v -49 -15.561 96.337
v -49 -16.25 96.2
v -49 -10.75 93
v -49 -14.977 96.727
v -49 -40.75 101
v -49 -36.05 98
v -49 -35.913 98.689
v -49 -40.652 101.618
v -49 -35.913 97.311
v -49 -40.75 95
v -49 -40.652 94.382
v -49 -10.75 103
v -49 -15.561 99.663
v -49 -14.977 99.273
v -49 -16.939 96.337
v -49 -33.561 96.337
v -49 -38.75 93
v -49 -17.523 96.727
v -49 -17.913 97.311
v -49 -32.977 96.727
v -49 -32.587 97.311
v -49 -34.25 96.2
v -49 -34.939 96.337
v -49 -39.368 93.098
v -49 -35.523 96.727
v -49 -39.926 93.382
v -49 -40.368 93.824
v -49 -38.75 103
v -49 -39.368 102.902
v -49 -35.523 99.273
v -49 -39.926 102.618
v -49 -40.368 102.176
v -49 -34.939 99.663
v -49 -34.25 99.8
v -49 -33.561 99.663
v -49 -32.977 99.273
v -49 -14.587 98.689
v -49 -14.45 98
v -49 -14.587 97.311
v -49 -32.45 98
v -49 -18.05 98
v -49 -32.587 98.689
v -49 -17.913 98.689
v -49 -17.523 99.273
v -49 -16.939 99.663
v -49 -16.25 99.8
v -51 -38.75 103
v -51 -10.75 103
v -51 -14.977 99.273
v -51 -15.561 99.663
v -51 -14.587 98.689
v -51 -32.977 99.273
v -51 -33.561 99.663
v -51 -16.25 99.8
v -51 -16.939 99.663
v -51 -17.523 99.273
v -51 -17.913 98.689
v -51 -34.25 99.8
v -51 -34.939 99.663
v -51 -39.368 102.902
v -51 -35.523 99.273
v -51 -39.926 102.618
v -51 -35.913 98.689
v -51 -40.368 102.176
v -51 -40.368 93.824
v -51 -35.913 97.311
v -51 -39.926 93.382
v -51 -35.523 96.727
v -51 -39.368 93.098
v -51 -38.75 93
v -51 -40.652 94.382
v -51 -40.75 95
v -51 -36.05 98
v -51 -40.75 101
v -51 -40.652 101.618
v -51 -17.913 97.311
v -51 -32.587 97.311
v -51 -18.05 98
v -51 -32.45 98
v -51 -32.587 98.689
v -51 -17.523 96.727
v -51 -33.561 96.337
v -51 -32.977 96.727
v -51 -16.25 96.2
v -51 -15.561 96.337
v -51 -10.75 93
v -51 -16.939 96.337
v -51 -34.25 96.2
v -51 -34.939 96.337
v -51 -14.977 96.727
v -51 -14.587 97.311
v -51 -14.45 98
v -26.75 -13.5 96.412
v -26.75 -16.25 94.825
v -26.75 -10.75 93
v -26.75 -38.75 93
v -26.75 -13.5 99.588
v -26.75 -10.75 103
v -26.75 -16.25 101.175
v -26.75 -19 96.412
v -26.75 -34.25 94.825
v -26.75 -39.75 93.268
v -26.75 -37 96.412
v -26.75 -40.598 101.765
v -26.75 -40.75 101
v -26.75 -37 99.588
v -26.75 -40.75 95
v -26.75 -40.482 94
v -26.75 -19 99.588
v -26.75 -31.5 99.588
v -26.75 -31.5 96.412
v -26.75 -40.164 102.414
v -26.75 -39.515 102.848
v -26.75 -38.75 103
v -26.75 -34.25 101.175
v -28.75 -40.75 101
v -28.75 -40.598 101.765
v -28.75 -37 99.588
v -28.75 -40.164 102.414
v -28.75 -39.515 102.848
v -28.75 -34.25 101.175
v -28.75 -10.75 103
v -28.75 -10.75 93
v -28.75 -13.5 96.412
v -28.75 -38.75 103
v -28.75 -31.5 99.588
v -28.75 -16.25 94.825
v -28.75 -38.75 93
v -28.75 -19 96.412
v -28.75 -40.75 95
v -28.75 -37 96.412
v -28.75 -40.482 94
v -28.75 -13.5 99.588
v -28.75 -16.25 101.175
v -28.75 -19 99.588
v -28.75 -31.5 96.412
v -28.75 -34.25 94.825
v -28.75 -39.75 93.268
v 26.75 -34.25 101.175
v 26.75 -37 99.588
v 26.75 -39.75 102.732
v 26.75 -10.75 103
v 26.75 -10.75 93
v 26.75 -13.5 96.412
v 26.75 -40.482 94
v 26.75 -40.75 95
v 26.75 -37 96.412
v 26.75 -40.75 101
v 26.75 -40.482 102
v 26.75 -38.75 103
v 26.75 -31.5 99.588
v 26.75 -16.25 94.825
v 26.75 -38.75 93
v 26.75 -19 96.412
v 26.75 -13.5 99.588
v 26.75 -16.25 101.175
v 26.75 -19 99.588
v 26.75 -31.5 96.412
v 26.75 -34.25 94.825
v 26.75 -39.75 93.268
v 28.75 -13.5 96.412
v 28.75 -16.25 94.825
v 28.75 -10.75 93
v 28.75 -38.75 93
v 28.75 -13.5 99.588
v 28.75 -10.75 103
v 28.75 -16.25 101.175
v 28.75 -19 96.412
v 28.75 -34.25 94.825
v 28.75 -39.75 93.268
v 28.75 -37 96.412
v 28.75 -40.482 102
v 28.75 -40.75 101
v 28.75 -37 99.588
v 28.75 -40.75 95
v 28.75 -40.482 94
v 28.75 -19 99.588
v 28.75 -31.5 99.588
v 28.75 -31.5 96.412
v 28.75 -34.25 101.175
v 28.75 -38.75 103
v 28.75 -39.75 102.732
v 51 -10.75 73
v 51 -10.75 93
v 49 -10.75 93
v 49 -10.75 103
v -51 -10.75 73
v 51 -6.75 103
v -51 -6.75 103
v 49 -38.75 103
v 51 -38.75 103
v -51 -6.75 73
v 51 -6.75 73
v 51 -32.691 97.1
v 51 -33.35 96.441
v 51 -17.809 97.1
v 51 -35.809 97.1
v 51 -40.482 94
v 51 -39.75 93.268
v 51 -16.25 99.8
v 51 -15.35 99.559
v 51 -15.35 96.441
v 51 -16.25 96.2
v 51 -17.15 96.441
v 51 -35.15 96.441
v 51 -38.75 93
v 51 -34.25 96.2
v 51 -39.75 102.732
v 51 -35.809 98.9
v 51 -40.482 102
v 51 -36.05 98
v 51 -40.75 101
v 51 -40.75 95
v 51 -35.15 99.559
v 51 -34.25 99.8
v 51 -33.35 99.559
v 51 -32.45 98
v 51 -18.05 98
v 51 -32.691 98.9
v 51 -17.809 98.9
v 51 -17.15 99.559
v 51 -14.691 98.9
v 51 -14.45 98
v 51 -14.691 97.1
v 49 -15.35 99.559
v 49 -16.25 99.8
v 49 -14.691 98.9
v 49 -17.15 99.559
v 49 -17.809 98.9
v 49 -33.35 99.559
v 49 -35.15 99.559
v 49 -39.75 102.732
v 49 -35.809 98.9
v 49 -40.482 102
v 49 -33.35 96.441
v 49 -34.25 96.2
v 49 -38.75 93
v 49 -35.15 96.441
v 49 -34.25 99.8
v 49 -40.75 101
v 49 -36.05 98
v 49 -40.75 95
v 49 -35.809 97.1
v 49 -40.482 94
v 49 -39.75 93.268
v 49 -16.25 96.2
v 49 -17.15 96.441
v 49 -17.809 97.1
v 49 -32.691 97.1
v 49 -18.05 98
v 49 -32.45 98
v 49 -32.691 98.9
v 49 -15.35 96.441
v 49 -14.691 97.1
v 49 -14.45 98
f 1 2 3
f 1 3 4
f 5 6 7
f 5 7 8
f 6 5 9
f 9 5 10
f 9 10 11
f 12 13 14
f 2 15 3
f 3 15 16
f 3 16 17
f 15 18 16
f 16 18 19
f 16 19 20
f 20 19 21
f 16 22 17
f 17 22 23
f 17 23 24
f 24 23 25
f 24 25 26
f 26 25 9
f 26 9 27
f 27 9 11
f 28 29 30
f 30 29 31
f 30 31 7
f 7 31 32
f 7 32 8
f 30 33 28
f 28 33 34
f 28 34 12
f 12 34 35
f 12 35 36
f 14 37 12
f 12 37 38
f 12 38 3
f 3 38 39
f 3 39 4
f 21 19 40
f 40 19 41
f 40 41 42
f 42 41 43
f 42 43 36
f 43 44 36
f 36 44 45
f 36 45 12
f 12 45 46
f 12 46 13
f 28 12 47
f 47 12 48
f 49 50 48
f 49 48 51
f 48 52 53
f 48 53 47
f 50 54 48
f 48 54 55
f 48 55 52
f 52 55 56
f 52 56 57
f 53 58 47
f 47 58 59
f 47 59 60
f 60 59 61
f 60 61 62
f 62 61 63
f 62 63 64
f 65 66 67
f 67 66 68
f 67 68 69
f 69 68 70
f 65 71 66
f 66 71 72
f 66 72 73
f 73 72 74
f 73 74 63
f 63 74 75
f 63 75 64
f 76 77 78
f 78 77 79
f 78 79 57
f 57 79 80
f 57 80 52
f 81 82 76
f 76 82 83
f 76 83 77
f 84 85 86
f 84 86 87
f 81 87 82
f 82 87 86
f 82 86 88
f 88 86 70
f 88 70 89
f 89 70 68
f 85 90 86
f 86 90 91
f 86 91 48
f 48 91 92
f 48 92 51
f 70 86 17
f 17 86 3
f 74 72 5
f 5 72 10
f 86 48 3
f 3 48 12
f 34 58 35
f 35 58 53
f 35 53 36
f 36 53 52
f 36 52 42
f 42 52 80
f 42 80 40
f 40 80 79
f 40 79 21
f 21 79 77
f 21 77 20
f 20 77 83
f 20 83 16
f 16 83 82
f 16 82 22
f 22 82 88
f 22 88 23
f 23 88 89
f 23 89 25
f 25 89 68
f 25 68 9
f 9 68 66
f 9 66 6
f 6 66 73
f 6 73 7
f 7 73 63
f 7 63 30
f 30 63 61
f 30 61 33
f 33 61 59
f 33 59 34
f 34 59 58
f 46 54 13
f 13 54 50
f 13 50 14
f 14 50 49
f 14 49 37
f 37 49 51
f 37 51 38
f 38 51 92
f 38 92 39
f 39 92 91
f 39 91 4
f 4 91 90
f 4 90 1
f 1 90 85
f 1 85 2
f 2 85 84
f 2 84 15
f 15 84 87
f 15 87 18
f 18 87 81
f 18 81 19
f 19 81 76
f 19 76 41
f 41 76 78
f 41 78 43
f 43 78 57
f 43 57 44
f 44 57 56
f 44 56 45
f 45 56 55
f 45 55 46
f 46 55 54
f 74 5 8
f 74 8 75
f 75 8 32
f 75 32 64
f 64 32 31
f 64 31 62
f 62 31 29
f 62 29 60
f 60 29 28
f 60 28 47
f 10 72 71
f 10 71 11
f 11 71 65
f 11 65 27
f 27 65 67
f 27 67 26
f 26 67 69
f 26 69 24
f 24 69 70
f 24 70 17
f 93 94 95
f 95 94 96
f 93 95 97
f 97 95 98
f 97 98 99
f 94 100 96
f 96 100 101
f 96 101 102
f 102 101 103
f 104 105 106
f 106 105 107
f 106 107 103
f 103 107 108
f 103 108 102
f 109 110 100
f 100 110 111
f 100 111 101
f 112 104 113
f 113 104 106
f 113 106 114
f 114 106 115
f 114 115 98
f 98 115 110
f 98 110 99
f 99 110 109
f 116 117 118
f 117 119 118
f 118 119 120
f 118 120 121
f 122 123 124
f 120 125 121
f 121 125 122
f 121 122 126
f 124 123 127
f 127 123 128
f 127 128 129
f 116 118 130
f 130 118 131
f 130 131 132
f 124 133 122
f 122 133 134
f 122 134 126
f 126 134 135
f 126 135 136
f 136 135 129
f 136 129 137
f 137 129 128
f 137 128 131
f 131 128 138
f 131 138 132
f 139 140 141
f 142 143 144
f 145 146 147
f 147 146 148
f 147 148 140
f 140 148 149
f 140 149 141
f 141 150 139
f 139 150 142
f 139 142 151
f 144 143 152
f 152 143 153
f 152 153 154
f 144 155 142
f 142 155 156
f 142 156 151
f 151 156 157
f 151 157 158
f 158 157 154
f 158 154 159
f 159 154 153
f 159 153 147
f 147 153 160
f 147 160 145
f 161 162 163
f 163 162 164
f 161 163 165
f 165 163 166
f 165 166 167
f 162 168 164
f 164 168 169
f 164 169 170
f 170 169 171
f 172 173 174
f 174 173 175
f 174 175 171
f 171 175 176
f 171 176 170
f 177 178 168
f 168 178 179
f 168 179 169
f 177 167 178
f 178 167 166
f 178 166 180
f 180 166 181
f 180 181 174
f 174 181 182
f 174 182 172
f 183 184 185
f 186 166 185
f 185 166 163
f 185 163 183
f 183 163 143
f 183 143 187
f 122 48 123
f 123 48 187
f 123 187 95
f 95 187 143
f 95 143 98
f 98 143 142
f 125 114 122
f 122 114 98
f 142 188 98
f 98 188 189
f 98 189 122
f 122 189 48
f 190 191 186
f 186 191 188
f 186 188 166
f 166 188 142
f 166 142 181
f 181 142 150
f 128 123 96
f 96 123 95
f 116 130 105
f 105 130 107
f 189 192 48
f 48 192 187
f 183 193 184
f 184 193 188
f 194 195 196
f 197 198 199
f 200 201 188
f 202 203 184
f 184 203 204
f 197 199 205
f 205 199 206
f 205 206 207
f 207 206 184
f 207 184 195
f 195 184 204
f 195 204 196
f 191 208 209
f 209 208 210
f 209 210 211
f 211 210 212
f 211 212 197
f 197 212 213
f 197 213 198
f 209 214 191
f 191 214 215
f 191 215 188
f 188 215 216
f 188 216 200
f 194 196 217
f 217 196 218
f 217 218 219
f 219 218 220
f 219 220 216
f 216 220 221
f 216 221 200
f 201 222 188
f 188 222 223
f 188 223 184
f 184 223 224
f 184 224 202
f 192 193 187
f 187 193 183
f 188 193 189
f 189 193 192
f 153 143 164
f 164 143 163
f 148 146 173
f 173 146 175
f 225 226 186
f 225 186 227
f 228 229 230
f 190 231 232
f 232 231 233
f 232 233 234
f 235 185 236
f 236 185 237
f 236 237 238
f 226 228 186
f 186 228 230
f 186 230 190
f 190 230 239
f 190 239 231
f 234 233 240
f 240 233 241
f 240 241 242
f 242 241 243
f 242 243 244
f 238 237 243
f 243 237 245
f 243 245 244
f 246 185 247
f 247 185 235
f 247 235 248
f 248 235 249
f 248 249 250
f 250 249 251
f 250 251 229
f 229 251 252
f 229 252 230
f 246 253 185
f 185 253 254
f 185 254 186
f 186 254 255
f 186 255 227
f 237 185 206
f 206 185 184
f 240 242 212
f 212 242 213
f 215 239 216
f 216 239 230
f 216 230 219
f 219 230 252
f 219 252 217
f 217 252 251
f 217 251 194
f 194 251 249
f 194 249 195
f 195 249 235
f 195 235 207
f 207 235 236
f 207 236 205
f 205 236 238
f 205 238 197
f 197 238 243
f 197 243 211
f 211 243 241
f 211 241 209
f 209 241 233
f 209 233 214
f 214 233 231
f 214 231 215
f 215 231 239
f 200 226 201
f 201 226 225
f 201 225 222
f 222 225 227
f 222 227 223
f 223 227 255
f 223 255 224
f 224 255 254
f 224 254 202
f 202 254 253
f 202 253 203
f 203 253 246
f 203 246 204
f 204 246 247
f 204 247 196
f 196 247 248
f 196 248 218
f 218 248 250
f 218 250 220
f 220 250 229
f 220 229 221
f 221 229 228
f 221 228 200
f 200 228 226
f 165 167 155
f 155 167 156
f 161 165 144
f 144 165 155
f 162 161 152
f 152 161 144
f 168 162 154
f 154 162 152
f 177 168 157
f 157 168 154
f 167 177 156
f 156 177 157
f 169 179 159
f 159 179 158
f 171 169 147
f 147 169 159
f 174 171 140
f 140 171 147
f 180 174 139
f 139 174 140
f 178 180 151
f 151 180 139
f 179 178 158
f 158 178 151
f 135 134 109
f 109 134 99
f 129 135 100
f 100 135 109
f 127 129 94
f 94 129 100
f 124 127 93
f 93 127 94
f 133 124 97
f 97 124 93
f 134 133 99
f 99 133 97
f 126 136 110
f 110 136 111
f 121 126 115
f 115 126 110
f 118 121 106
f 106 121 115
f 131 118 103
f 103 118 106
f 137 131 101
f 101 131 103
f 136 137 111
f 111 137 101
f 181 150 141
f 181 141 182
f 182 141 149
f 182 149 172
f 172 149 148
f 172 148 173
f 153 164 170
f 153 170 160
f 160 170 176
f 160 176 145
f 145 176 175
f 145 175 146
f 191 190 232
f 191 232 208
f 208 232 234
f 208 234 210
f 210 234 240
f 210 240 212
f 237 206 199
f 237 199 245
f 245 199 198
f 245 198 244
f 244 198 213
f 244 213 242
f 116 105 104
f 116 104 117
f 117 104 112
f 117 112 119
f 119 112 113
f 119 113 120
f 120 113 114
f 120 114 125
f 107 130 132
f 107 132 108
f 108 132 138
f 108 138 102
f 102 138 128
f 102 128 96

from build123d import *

# Parameters (mm, degrees)
SALIENTE_EXTRUIR1_DEPTH     = 9
CROQUIS1_W                  = 2
CROQUIS1_H                  = 8.9
SALIENTE_EXTRUIR1_2_DEPTH   = 9
SALIENTE_EXTRUIR1_3_DEPTH   = 9
SALIENTE_EXTRUIR1_4_DEPTH   = 9
CROQUIS2_W                  = 2
CROQUIS2_H                  = 0.3
SALIENTE_EXTRUIR3_DEPTH     = 5
SALIENTE_EXTRUIR5_DEPTH     = 8.9
CROQUIS6_R                  = 2
SALIENTE_EXTRUIR6_DEPTH     = 4
SALIENTE_EXTRUIR7_DEPTH     = 7
SALIENTE_EXTRUIR8_DEPTH     = 4
SALIENTE_EXTRUIR9_START     = 13.5
SALIENTE_EXTRUIR9_DEPTH     = 13.5
REDONDEO1_START             = -0.677871649
REDONDEO1_DEPTH             = 24.677871649
SALIENTE_EXTRUIR10_DEPTH    = 4
CORTAR_EXTRUIR1_DEPTH       = 56.136761934
CORTAR_EXTRUIR1_DEPTH_BACK  = 5
CROQUIS12_R                 = 2.75
CORTAR_EXTRUIR2_START       = -4
CROQUIS13_R                 = 2
CORTAR_EXTRUIR2_DEPTH       = 4
REDONDEO4_R                 = 5
CROQUIS15_R                 = 2.5
CORTAR_EXTRUIR4_DEPTH       = 2
CROQUIS16_W                 = 2
CROQUIS16_H                 = 10
SALIENTE_EXTRUIR11_DEPTH    = 30
SALIENTE_EXTRUIR11_2_DEPTH  = 30
SALIENTE_EXTRUIR11_3_DEPTH  = 30
SALIENTE_EXTRUIR11_4_DEPTH  = 30
SALIENTE_EXTRUIR12_DEPTH    = 4
CROQUIS19_R                 = 1.8
CORTAR_EXTRUIR6_DEPTH       = 151.577430248
CORTAR_EXTRUIR7_DEPTH       = 60
CORTAR_EXTRUIR7_DEPTH_BACK  = 10
CORTAR_EXTRUIR12_DEPTH      = 122.944915843
CORTAR_EXTRUIR12_DEPTH_BACK = 122.944915843
CROQUIS24_W                 = 213.992672445
CROQUIS24_H                 = 195.620893339
REDONDEO5_R                 = 2
REDONDEO6_R                 = 2
REDONDEO7_R                 = 2


with BuildPart() as part:
    # Croquis1 → Saliente-Extruir1 (new body)
    with BuildSketch(Plane.XY):
        Polygon((9, 6.75), (-9, 6.75), (-9, 4.75), (-7, 4.75), (7, 4.75), (9, 4.75), align=None)
    extrude(amount=SALIENTE_EXTRUIR1_DEPTH)



with BuildPart() as body_2:
    # Croquis1 → Saliente-Extruir1 2 (new body)
    with BuildSketch(Plane.XY):
        with Locations((-8, 0)):
            Rectangle(CROQUIS1_W, CROQUIS1_H)
    extrude(amount=SALIENTE_EXTRUIR1_2_DEPTH)


with BuildPart() as body_3:
    # Croquis1 → Saliente-Extruir1 3 (new body)
    with BuildSketch(Plane.XY):
        Polygon((-7, -4.75), (-9, -4.75), (-9, -6.75), (9, -6.75), (9, -4.75), (7, -4.75), align=None)
    extrude(amount=SALIENTE_EXTRUIR1_3_DEPTH)


with BuildPart() as body_4:
    # Croquis1 → Saliente-Extruir1 4 (new body)
    with BuildSketch(Plane.XY):
        with Locations((8, 0)):
            Rectangle(CROQUIS1_W, CROQUIS1_H)
    extrude(amount=SALIENTE_EXTRUIR1_4_DEPTH)


with BuildPart() as part_1:
    add(part.part)

    add(body_2.part)  # Saliente-Extruir3 merges body 2

    add(body_3.part)  # Saliente-Extruir3 merges body 3

    add(body_4.part)  # Saliente-Extruir3 merges body 4
    # Croquis2 → Saliente-Extruir3 (add)
    with BuildSketch(Plane.XY):
        with Locations((8, 4.6)):
            Rectangle(CROQUIS2_W, CROQUIS2_H)
        with Locations((8, -4.6)):
            Rectangle(CROQUIS2_W, CROQUIS2_H)
        with Locations((-8, -4.6)):
            Rectangle(CROQUIS2_W, CROQUIS2_H)
        with Locations((-8, 4.6)):
            Rectangle(CROQUIS2_W, CROQUIS2_H)
    extrude(amount=SALIENTE_EXTRUIR3_DEPTH)

    # Croquis5 → Saliente-Extruir5 (add)
    with BuildSketch(Plane(origin=(0, 4.45, 0), x_dir=(1, 0, 0), z_dir=(0, 1, 0))):
        Polygon((6, -9), (7, -9), (7, -7), align=None)
        Polygon((-7, -7), (-7, -9), (-6, -9), align=None)
    extrude(amount=-SALIENTE_EXTRUIR5_DEPTH)

    # Croquis6 → Saliente-Extruir6 (add)
    with BuildSketch(Plane.XZ.offset(6.75)):
        with BuildLine():
            ThreePointArc((-50, 9), (0, -3), (50, 9))
            Line((50, 9), (50, 24))
            ThreePointArc((50, 24), (36.757105541, 16.769444448), (22.5, 11.830808117))
            Line((22.5, 11.830808117), (22.5, 3.422761334))
            ThreePointArc((22.5, 3.422761334), (0, 1.452024157), (-22.5, 3.422761334))
            Line((-22.5, 3.422761334), (-22.5, 11.830808117))
            ThreePointArc((-22.5, 11.830808117), (-36.757105541, 16.769444448), (-50, 24))
            Line((-50, 24), (-50, 9))
        make_face()
        with Locations(Location((46, 16.452024157, 0), (0, 0, 270))):
            Circle(CROQUIS6_R, mode=Mode.SUBTRACT)
        with Locations(Location((-46, 16.452024157, 0), (0, 0, 270))):
            Circle(CROQUIS6_R, mode=Mode.SUBTRACT)
    extrude(amount=SALIENTE_EXTRUIR6_DEPTH)

    # Croquis6<3> → Saliente-Extruir7 (add)
    with BuildSketch(Plane.XZ.offset(6.75)):
        with BuildLine():
            ThreePointArc((-50, 9), (0, -3), (50, 9))
            Line((50, 9), (50, 11.5))
            ThreePointArc((50, 11.5), (36.47427787, 6.697797755), (22.5, 3.422761334))
            ThreePointArc((22.5, 3.422761334), (15.771787387, 2.416580824), (9, 1.765320682))
            Line((9, 1.765320682), (9, 0))
            Line((9, 0), (-9, 0))
            Line((-9, 0), (-9, 1.765320682))
            ThreePointArc((-9, 1.765320682), (-15.771787387, 2.416580824), (-22.5, 3.422761334))
            ThreePointArc((-22.5, 3.422761334), (-36.47427787, 6.697797755), (-50, 11.5))
            Line((-50, 11.5), (-50, 9))
        make_face()
        with BuildLine():
            Line((9, 0), (9, 1.765320682))
            ThreePointArc((9, 1.765320682), (0, 1.452024157), (-9, 1.765320682))
            Line((-9, 1.765320682), (-9, 0))
            Line((-9, 0), (9, 0))
        make_face()
    extrude(amount=SALIENTE_EXTRUIR7_DEPTH)

    # Croquis7 → Saliente-Extruir8 (add)
    with BuildSketch(Plane.XZ.offset(13.75)):
        with BuildLine():
            Line((-22.5, 3.422761334), (-22.5, 11.830808117))
            ThreePointArc((-22.5, 11.830808117), (-36.757105541, 16.769444448), (-50, 24))
            Line((-50, 24), (-50, 11.5))
            Line((-50, 11.5), (-50, 9))
            ThreePointArc((-50, 9), (0, -3), (50, 9))
            Line((50, 9), (50, 11.5))
            Line((50, 11.5), (50, 24))
            ThreePointArc((50, 24), (36.757105541, 16.769444448), (22.5, 11.830808117))
            Line((22.5, 11.830808117), (22.5, 3.422761334))
            ThreePointArc((22.5, 3.422761334), (15.771787387, 2.416580824), (9, 1.765320682))
            ThreePointArc((9, 1.765320682), (0, 1.452024157), (-9, 1.765320682))
            ThreePointArc((-9, 1.765320682), (-15.771787387, 2.416580824), (-22.5, 3.422761334))
        make_face()
    extrude(amount=SALIENTE_EXTRUIR8_DEPTH)

    # Croquis8 → Saliente-Extruir9 (add)
    with BuildSketch(Plane(origin=(0, -6.75, 0), x_dir=(1, 0, 0), z_dir=(0, 1, 0)).offset(SALIENTE_EXTRUIR9_START)):
        with BuildLine():
            Line((-50, -9), (-50, -11.5))
            ThreePointArc((-50, -11.5), (-36.47427787, -6.697797755), (-22.5, -3.422761334))
            Line((-22.5, -3.422761334), (-22.5, 0.677871649))
            ThreePointArc((-22.5, 0.677871649), (-36.571543581, -3.247387202), (-50, -9))
        make_face()
        with BuildLine():
            Line((50, -9), (50, -11.5))
            ThreePointArc((50, -11.5), (36.47427787, -6.697797755), (22.5, -3.422761334))
            Line((22.5, -3.422761334), (22.5, 0.677871649))
            ThreePointArc((22.5, 0.677871649), (36.571543581, -3.247387202), (50, -9))
        make_face()
    extrude(amount=-SALIENTE_EXTRUIR9_DEPTH)

    # Redondeo1: read off the stored shape, not the designer's step
    # Redondeo1 outline → Redondeo1 (cut)
    with BuildSketch(Plane.XY.offset(REDONDEO1_START)):
        with BuildLine():
            ThreePointArc((35, 6.75), (45.606601718, 2.356601718), (50, -8.25))
            Line((50, -8.25), (50, 6.75))
            Line((50, 6.75), (35, 6.75))
        make_face()
        with BuildLine():
            ThreePointArc((-50, -8.25), (-45.606601718, 2.356601718), (-35, 6.75))
            Line((-35, 6.75), (-50, 6.75))
            Line((-50, 6.75), (-50, -8.25))
        make_face()
    extrude(amount=REDONDEO1_DEPTH, mode=Mode.SUBTRACT)

    # Croquis11 → Saliente-Extruir10 (add)
    with BuildSketch(Plane.XZ.offset(6.75)):
        with BuildLine():
            Line((-9, 9), (-9, 1.765320682))
            ThreePointArc((-9, 1.765320682), (0, 1.452024157), (9, 1.765320682))
            Line((9, 1.765320682), (9, 9))
            Line((9, 9), (-9, 9))
        make_face()
    extrude(amount=SALIENTE_EXTRUIR10_DEPTH)

    # Croquis12 → Cortar-Extruir1 (cut, two sides: drawn at the far end of the back side and taken through both)
    with BuildSketch(Plane(origin=(0, 0, 9), x_dir=(-1, 0, 0), z_dir=(0, 0, -1)).offset(-CORTAR_EXTRUIR1_DEPTH_BACK)):
        with Locations(Location((-37, 0, 0), (0, 0, 180))):
            Circle(CROQUIS12_R)
        with Locations(Location((37, 0, 0), (0, 0, 180))):
            Circle(CROQUIS12_R)
    extrude(amount=CORTAR_EXTRUIR1_DEPTH + CORTAR_EXTRUIR1_DEPTH_BACK, mode=Mode.SUBTRACT)

    # Croquis13 → Cortar-Extruir2 (cut)
    with BuildSketch(Plane.XZ.offset(17.75).offset(CORTAR_EXTRUIR2_START)):
        with Locations(Location((46, 16.452024157, 0), (0, 0, 270))):
            Circle(CROQUIS13_R)
        with Locations(Location((-46, 16.452024157, 0), (0, 0, 270))):
            Circle(CROQUIS13_R)
    extrude(amount=CORTAR_EXTRUIR2_DEPTH, mode=Mode.SUBTRACT)

    # Redondeo4
    redondeo4_edges = [part_1.edges().sort_by_distance(p)[0] for p in [
        (-22.5, 6.75, 1.372444842),
        (22.5, 6.75, 1.372444842),
    ]]
    fillet(redondeo4_edges, radius=REDONDEO4_R)

    # Croquis15 → Cortar-Extruir4 (cut)
    with BuildSketch(Plane(origin=(0, -6.75, 0), x_dir=(1, 0, 0), z_dir=(0, 1, 0))):
        with Locations(Location((-46, -16.452024157, 0), (0, 0, 270))):
            Circle(CROQUIS15_R)
        with Locations(Location((46, -16.452024157, 0), (0, 0, 270))):
            Circle(CROQUIS15_R)
    extrude(amount=-CORTAR_EXTRUIR4_DEPTH, mode=Mode.SUBTRACT)

    # Croquis24 → Cortar-Extruir12 (cut, two sides: drawn at the far end of the back side and taken through both)
    with BuildSketch(Plane(origin=(0, 0, 0), x_dir=(0, 0, -1), z_dir=(1, 0, 0)).offset(-CORTAR_EXTRUIR12_DEPTH_BACK)):
        with Locations((-61.147337457, 3.742604374)):
            Rectangle(CROQUIS24_W, CROQUIS24_H)
    extrude(amount=CORTAR_EXTRUIR12_DEPTH + CORTAR_EXTRUIR12_DEPTH_BACK, mode=Mode.SUBTRACT)


with BuildPart() as body_2_2:
    # Croquis16 → Saliente-Extruir11 (new body)
    with BuildSketch(Plane.XZ.offset(10.75)):
        with Locations((27.75, 98)):
            Rectangle(CROQUIS16_W, CROQUIS16_H)
    extrude(amount=SALIENTE_EXTRUIR11_DEPTH)


with BuildPart() as body_3_2:
    # Croquis16 → Saliente-Extruir11 2 (new body)
    with BuildSketch(Plane.XZ.offset(10.75)):
        with Locations((-27.75, 98)):
            Rectangle(CROQUIS16_W, CROQUIS16_H)
    extrude(amount=SALIENTE_EXTRUIR11_2_DEPTH)


    add(body_2_2.part)  # Saliente-Extruir12 merges body 2 2


with BuildPart() as body_4_2:
    # Croquis16 → Saliente-Extruir11 3 (new body)
    with BuildSketch(Plane.XZ.offset(10.75)):
        with Locations((50, 98)):
            Rectangle(CROQUIS16_W, CROQUIS16_H)
    extrude(amount=SALIENTE_EXTRUIR11_3_DEPTH)


with BuildPart() as body_5:
    # Croquis16 → Saliente-Extruir11 4 (new body)
    with BuildSketch(Plane.XZ.offset(10.75)):
        with Locations((-50, 98)):
            Rectangle(CROQUIS16_W, CROQUIS16_H)
    extrude(amount=SALIENTE_EXTRUIR11_4_DEPTH)


with BuildPart() as body_3_2_1:
    add(body_3_2.part)

    add(body_4_2.part)  # Saliente-Extruir12 merges body 4 2
    # Croquis17 → Saliente-Extruir12 (add)
    with BuildSketch(Plane(origin=(0, -10.75, 0), x_dir=(1, 0, 0), z_dir=(0, 1, 0))):
        Polygon((51, -73), (-51, -73), (-51, -103), (-26.75, -103), (26.75, -103), (51, -103), align=None)
    extrude(amount=SALIENTE_EXTRUIR12_DEPTH)


with BuildPart() as cortar_extruir6_tool:
    # Croquis19 → Cortar-Extruir6 (new, through all)
    with BuildSketch(Plane.ZY.offset(51)):
        with Locations((98, -16.25)):
            Circle(CROQUIS19_R)
        with Locations((98, -34.25)):
            Circle(CROQUIS19_R)
    extrude(amount=-CORTAR_EXTRUIR6_DEPTH)


with BuildPart() as body_3_2_2:
    add(body_3_2_1.part)

    # Cortar-Extruir6: cut by cortar_extruir6_tool
    add(cortar_extruir6_tool.part, mode=Mode.SUBTRACT)

    # Croquis20 → Cortar-Extruir7 (cut, two sides: drawn at the far end of the back side and taken through both)
    with BuildSketch(Plane(origin=(-26.75, 0, 0), x_dir=(0, 0, -1), z_dir=(1, 0, 0)).offset(-CORTAR_EXTRUIR7_DEPTH_BACK)):
        Polygon((-99.58771324, -31.5), (-101.175426481, -34.25), (-99.58771324, -37), (-96.41228676, -37), (-94.824573519, -34.25), (-96.41228676, -31.5), align=None)
        Polygon((-99.58771324, -19), (-96.41228676, -19), (-94.824573519, -16.25), (-96.41228676, -13.5), (-99.58771324, -13.5), (-101.175426481, -16.25), align=None)
    extrude(amount=CORTAR_EXTRUIR7_DEPTH + CORTAR_EXTRUIR7_DEPTH_BACK, mode=Mode.SUBTRACT)

    # Redondeo5
    redondeo5_edges = [body_3_2_2.edges().sort_by_distance(p)[0] for p in [
        (27.75, -40.75, 93),
        (27.75, -40.75, 103),
        (50, -40.75, 93),
        (50, -40.75, 103),
    ]]
    fillet(redondeo5_edges, radius=REDONDEO5_R)

    # Redondeo6
    redondeo6_edges = [body_3_2_2.edges().sort_by_distance(p)[0] for p in [
        (-27.75, -40.75, 93),
        (-27.75, -40.75, 103),
    ]]
    fillet(redondeo6_edges, radius=REDONDEO6_R)


with BuildPart() as body_5_1:
    add(body_5.part)

    # Cortar-Extruir6: cut by cortar_extruir6_tool
    add(cortar_extruir6_tool.part, mode=Mode.SUBTRACT)

    # Redondeo7
    redondeo7_edges = [body_5_1.edges().sort_by_distance(p)[0] for p in [
        (-50, -40.75, 93),
        (-50, -40.75, 103),
    ]]
    fillet(redondeo7_edges, radius=REDONDEO7_R)


solid = Compound([body_3_2_2.part, body_5_1.part])
